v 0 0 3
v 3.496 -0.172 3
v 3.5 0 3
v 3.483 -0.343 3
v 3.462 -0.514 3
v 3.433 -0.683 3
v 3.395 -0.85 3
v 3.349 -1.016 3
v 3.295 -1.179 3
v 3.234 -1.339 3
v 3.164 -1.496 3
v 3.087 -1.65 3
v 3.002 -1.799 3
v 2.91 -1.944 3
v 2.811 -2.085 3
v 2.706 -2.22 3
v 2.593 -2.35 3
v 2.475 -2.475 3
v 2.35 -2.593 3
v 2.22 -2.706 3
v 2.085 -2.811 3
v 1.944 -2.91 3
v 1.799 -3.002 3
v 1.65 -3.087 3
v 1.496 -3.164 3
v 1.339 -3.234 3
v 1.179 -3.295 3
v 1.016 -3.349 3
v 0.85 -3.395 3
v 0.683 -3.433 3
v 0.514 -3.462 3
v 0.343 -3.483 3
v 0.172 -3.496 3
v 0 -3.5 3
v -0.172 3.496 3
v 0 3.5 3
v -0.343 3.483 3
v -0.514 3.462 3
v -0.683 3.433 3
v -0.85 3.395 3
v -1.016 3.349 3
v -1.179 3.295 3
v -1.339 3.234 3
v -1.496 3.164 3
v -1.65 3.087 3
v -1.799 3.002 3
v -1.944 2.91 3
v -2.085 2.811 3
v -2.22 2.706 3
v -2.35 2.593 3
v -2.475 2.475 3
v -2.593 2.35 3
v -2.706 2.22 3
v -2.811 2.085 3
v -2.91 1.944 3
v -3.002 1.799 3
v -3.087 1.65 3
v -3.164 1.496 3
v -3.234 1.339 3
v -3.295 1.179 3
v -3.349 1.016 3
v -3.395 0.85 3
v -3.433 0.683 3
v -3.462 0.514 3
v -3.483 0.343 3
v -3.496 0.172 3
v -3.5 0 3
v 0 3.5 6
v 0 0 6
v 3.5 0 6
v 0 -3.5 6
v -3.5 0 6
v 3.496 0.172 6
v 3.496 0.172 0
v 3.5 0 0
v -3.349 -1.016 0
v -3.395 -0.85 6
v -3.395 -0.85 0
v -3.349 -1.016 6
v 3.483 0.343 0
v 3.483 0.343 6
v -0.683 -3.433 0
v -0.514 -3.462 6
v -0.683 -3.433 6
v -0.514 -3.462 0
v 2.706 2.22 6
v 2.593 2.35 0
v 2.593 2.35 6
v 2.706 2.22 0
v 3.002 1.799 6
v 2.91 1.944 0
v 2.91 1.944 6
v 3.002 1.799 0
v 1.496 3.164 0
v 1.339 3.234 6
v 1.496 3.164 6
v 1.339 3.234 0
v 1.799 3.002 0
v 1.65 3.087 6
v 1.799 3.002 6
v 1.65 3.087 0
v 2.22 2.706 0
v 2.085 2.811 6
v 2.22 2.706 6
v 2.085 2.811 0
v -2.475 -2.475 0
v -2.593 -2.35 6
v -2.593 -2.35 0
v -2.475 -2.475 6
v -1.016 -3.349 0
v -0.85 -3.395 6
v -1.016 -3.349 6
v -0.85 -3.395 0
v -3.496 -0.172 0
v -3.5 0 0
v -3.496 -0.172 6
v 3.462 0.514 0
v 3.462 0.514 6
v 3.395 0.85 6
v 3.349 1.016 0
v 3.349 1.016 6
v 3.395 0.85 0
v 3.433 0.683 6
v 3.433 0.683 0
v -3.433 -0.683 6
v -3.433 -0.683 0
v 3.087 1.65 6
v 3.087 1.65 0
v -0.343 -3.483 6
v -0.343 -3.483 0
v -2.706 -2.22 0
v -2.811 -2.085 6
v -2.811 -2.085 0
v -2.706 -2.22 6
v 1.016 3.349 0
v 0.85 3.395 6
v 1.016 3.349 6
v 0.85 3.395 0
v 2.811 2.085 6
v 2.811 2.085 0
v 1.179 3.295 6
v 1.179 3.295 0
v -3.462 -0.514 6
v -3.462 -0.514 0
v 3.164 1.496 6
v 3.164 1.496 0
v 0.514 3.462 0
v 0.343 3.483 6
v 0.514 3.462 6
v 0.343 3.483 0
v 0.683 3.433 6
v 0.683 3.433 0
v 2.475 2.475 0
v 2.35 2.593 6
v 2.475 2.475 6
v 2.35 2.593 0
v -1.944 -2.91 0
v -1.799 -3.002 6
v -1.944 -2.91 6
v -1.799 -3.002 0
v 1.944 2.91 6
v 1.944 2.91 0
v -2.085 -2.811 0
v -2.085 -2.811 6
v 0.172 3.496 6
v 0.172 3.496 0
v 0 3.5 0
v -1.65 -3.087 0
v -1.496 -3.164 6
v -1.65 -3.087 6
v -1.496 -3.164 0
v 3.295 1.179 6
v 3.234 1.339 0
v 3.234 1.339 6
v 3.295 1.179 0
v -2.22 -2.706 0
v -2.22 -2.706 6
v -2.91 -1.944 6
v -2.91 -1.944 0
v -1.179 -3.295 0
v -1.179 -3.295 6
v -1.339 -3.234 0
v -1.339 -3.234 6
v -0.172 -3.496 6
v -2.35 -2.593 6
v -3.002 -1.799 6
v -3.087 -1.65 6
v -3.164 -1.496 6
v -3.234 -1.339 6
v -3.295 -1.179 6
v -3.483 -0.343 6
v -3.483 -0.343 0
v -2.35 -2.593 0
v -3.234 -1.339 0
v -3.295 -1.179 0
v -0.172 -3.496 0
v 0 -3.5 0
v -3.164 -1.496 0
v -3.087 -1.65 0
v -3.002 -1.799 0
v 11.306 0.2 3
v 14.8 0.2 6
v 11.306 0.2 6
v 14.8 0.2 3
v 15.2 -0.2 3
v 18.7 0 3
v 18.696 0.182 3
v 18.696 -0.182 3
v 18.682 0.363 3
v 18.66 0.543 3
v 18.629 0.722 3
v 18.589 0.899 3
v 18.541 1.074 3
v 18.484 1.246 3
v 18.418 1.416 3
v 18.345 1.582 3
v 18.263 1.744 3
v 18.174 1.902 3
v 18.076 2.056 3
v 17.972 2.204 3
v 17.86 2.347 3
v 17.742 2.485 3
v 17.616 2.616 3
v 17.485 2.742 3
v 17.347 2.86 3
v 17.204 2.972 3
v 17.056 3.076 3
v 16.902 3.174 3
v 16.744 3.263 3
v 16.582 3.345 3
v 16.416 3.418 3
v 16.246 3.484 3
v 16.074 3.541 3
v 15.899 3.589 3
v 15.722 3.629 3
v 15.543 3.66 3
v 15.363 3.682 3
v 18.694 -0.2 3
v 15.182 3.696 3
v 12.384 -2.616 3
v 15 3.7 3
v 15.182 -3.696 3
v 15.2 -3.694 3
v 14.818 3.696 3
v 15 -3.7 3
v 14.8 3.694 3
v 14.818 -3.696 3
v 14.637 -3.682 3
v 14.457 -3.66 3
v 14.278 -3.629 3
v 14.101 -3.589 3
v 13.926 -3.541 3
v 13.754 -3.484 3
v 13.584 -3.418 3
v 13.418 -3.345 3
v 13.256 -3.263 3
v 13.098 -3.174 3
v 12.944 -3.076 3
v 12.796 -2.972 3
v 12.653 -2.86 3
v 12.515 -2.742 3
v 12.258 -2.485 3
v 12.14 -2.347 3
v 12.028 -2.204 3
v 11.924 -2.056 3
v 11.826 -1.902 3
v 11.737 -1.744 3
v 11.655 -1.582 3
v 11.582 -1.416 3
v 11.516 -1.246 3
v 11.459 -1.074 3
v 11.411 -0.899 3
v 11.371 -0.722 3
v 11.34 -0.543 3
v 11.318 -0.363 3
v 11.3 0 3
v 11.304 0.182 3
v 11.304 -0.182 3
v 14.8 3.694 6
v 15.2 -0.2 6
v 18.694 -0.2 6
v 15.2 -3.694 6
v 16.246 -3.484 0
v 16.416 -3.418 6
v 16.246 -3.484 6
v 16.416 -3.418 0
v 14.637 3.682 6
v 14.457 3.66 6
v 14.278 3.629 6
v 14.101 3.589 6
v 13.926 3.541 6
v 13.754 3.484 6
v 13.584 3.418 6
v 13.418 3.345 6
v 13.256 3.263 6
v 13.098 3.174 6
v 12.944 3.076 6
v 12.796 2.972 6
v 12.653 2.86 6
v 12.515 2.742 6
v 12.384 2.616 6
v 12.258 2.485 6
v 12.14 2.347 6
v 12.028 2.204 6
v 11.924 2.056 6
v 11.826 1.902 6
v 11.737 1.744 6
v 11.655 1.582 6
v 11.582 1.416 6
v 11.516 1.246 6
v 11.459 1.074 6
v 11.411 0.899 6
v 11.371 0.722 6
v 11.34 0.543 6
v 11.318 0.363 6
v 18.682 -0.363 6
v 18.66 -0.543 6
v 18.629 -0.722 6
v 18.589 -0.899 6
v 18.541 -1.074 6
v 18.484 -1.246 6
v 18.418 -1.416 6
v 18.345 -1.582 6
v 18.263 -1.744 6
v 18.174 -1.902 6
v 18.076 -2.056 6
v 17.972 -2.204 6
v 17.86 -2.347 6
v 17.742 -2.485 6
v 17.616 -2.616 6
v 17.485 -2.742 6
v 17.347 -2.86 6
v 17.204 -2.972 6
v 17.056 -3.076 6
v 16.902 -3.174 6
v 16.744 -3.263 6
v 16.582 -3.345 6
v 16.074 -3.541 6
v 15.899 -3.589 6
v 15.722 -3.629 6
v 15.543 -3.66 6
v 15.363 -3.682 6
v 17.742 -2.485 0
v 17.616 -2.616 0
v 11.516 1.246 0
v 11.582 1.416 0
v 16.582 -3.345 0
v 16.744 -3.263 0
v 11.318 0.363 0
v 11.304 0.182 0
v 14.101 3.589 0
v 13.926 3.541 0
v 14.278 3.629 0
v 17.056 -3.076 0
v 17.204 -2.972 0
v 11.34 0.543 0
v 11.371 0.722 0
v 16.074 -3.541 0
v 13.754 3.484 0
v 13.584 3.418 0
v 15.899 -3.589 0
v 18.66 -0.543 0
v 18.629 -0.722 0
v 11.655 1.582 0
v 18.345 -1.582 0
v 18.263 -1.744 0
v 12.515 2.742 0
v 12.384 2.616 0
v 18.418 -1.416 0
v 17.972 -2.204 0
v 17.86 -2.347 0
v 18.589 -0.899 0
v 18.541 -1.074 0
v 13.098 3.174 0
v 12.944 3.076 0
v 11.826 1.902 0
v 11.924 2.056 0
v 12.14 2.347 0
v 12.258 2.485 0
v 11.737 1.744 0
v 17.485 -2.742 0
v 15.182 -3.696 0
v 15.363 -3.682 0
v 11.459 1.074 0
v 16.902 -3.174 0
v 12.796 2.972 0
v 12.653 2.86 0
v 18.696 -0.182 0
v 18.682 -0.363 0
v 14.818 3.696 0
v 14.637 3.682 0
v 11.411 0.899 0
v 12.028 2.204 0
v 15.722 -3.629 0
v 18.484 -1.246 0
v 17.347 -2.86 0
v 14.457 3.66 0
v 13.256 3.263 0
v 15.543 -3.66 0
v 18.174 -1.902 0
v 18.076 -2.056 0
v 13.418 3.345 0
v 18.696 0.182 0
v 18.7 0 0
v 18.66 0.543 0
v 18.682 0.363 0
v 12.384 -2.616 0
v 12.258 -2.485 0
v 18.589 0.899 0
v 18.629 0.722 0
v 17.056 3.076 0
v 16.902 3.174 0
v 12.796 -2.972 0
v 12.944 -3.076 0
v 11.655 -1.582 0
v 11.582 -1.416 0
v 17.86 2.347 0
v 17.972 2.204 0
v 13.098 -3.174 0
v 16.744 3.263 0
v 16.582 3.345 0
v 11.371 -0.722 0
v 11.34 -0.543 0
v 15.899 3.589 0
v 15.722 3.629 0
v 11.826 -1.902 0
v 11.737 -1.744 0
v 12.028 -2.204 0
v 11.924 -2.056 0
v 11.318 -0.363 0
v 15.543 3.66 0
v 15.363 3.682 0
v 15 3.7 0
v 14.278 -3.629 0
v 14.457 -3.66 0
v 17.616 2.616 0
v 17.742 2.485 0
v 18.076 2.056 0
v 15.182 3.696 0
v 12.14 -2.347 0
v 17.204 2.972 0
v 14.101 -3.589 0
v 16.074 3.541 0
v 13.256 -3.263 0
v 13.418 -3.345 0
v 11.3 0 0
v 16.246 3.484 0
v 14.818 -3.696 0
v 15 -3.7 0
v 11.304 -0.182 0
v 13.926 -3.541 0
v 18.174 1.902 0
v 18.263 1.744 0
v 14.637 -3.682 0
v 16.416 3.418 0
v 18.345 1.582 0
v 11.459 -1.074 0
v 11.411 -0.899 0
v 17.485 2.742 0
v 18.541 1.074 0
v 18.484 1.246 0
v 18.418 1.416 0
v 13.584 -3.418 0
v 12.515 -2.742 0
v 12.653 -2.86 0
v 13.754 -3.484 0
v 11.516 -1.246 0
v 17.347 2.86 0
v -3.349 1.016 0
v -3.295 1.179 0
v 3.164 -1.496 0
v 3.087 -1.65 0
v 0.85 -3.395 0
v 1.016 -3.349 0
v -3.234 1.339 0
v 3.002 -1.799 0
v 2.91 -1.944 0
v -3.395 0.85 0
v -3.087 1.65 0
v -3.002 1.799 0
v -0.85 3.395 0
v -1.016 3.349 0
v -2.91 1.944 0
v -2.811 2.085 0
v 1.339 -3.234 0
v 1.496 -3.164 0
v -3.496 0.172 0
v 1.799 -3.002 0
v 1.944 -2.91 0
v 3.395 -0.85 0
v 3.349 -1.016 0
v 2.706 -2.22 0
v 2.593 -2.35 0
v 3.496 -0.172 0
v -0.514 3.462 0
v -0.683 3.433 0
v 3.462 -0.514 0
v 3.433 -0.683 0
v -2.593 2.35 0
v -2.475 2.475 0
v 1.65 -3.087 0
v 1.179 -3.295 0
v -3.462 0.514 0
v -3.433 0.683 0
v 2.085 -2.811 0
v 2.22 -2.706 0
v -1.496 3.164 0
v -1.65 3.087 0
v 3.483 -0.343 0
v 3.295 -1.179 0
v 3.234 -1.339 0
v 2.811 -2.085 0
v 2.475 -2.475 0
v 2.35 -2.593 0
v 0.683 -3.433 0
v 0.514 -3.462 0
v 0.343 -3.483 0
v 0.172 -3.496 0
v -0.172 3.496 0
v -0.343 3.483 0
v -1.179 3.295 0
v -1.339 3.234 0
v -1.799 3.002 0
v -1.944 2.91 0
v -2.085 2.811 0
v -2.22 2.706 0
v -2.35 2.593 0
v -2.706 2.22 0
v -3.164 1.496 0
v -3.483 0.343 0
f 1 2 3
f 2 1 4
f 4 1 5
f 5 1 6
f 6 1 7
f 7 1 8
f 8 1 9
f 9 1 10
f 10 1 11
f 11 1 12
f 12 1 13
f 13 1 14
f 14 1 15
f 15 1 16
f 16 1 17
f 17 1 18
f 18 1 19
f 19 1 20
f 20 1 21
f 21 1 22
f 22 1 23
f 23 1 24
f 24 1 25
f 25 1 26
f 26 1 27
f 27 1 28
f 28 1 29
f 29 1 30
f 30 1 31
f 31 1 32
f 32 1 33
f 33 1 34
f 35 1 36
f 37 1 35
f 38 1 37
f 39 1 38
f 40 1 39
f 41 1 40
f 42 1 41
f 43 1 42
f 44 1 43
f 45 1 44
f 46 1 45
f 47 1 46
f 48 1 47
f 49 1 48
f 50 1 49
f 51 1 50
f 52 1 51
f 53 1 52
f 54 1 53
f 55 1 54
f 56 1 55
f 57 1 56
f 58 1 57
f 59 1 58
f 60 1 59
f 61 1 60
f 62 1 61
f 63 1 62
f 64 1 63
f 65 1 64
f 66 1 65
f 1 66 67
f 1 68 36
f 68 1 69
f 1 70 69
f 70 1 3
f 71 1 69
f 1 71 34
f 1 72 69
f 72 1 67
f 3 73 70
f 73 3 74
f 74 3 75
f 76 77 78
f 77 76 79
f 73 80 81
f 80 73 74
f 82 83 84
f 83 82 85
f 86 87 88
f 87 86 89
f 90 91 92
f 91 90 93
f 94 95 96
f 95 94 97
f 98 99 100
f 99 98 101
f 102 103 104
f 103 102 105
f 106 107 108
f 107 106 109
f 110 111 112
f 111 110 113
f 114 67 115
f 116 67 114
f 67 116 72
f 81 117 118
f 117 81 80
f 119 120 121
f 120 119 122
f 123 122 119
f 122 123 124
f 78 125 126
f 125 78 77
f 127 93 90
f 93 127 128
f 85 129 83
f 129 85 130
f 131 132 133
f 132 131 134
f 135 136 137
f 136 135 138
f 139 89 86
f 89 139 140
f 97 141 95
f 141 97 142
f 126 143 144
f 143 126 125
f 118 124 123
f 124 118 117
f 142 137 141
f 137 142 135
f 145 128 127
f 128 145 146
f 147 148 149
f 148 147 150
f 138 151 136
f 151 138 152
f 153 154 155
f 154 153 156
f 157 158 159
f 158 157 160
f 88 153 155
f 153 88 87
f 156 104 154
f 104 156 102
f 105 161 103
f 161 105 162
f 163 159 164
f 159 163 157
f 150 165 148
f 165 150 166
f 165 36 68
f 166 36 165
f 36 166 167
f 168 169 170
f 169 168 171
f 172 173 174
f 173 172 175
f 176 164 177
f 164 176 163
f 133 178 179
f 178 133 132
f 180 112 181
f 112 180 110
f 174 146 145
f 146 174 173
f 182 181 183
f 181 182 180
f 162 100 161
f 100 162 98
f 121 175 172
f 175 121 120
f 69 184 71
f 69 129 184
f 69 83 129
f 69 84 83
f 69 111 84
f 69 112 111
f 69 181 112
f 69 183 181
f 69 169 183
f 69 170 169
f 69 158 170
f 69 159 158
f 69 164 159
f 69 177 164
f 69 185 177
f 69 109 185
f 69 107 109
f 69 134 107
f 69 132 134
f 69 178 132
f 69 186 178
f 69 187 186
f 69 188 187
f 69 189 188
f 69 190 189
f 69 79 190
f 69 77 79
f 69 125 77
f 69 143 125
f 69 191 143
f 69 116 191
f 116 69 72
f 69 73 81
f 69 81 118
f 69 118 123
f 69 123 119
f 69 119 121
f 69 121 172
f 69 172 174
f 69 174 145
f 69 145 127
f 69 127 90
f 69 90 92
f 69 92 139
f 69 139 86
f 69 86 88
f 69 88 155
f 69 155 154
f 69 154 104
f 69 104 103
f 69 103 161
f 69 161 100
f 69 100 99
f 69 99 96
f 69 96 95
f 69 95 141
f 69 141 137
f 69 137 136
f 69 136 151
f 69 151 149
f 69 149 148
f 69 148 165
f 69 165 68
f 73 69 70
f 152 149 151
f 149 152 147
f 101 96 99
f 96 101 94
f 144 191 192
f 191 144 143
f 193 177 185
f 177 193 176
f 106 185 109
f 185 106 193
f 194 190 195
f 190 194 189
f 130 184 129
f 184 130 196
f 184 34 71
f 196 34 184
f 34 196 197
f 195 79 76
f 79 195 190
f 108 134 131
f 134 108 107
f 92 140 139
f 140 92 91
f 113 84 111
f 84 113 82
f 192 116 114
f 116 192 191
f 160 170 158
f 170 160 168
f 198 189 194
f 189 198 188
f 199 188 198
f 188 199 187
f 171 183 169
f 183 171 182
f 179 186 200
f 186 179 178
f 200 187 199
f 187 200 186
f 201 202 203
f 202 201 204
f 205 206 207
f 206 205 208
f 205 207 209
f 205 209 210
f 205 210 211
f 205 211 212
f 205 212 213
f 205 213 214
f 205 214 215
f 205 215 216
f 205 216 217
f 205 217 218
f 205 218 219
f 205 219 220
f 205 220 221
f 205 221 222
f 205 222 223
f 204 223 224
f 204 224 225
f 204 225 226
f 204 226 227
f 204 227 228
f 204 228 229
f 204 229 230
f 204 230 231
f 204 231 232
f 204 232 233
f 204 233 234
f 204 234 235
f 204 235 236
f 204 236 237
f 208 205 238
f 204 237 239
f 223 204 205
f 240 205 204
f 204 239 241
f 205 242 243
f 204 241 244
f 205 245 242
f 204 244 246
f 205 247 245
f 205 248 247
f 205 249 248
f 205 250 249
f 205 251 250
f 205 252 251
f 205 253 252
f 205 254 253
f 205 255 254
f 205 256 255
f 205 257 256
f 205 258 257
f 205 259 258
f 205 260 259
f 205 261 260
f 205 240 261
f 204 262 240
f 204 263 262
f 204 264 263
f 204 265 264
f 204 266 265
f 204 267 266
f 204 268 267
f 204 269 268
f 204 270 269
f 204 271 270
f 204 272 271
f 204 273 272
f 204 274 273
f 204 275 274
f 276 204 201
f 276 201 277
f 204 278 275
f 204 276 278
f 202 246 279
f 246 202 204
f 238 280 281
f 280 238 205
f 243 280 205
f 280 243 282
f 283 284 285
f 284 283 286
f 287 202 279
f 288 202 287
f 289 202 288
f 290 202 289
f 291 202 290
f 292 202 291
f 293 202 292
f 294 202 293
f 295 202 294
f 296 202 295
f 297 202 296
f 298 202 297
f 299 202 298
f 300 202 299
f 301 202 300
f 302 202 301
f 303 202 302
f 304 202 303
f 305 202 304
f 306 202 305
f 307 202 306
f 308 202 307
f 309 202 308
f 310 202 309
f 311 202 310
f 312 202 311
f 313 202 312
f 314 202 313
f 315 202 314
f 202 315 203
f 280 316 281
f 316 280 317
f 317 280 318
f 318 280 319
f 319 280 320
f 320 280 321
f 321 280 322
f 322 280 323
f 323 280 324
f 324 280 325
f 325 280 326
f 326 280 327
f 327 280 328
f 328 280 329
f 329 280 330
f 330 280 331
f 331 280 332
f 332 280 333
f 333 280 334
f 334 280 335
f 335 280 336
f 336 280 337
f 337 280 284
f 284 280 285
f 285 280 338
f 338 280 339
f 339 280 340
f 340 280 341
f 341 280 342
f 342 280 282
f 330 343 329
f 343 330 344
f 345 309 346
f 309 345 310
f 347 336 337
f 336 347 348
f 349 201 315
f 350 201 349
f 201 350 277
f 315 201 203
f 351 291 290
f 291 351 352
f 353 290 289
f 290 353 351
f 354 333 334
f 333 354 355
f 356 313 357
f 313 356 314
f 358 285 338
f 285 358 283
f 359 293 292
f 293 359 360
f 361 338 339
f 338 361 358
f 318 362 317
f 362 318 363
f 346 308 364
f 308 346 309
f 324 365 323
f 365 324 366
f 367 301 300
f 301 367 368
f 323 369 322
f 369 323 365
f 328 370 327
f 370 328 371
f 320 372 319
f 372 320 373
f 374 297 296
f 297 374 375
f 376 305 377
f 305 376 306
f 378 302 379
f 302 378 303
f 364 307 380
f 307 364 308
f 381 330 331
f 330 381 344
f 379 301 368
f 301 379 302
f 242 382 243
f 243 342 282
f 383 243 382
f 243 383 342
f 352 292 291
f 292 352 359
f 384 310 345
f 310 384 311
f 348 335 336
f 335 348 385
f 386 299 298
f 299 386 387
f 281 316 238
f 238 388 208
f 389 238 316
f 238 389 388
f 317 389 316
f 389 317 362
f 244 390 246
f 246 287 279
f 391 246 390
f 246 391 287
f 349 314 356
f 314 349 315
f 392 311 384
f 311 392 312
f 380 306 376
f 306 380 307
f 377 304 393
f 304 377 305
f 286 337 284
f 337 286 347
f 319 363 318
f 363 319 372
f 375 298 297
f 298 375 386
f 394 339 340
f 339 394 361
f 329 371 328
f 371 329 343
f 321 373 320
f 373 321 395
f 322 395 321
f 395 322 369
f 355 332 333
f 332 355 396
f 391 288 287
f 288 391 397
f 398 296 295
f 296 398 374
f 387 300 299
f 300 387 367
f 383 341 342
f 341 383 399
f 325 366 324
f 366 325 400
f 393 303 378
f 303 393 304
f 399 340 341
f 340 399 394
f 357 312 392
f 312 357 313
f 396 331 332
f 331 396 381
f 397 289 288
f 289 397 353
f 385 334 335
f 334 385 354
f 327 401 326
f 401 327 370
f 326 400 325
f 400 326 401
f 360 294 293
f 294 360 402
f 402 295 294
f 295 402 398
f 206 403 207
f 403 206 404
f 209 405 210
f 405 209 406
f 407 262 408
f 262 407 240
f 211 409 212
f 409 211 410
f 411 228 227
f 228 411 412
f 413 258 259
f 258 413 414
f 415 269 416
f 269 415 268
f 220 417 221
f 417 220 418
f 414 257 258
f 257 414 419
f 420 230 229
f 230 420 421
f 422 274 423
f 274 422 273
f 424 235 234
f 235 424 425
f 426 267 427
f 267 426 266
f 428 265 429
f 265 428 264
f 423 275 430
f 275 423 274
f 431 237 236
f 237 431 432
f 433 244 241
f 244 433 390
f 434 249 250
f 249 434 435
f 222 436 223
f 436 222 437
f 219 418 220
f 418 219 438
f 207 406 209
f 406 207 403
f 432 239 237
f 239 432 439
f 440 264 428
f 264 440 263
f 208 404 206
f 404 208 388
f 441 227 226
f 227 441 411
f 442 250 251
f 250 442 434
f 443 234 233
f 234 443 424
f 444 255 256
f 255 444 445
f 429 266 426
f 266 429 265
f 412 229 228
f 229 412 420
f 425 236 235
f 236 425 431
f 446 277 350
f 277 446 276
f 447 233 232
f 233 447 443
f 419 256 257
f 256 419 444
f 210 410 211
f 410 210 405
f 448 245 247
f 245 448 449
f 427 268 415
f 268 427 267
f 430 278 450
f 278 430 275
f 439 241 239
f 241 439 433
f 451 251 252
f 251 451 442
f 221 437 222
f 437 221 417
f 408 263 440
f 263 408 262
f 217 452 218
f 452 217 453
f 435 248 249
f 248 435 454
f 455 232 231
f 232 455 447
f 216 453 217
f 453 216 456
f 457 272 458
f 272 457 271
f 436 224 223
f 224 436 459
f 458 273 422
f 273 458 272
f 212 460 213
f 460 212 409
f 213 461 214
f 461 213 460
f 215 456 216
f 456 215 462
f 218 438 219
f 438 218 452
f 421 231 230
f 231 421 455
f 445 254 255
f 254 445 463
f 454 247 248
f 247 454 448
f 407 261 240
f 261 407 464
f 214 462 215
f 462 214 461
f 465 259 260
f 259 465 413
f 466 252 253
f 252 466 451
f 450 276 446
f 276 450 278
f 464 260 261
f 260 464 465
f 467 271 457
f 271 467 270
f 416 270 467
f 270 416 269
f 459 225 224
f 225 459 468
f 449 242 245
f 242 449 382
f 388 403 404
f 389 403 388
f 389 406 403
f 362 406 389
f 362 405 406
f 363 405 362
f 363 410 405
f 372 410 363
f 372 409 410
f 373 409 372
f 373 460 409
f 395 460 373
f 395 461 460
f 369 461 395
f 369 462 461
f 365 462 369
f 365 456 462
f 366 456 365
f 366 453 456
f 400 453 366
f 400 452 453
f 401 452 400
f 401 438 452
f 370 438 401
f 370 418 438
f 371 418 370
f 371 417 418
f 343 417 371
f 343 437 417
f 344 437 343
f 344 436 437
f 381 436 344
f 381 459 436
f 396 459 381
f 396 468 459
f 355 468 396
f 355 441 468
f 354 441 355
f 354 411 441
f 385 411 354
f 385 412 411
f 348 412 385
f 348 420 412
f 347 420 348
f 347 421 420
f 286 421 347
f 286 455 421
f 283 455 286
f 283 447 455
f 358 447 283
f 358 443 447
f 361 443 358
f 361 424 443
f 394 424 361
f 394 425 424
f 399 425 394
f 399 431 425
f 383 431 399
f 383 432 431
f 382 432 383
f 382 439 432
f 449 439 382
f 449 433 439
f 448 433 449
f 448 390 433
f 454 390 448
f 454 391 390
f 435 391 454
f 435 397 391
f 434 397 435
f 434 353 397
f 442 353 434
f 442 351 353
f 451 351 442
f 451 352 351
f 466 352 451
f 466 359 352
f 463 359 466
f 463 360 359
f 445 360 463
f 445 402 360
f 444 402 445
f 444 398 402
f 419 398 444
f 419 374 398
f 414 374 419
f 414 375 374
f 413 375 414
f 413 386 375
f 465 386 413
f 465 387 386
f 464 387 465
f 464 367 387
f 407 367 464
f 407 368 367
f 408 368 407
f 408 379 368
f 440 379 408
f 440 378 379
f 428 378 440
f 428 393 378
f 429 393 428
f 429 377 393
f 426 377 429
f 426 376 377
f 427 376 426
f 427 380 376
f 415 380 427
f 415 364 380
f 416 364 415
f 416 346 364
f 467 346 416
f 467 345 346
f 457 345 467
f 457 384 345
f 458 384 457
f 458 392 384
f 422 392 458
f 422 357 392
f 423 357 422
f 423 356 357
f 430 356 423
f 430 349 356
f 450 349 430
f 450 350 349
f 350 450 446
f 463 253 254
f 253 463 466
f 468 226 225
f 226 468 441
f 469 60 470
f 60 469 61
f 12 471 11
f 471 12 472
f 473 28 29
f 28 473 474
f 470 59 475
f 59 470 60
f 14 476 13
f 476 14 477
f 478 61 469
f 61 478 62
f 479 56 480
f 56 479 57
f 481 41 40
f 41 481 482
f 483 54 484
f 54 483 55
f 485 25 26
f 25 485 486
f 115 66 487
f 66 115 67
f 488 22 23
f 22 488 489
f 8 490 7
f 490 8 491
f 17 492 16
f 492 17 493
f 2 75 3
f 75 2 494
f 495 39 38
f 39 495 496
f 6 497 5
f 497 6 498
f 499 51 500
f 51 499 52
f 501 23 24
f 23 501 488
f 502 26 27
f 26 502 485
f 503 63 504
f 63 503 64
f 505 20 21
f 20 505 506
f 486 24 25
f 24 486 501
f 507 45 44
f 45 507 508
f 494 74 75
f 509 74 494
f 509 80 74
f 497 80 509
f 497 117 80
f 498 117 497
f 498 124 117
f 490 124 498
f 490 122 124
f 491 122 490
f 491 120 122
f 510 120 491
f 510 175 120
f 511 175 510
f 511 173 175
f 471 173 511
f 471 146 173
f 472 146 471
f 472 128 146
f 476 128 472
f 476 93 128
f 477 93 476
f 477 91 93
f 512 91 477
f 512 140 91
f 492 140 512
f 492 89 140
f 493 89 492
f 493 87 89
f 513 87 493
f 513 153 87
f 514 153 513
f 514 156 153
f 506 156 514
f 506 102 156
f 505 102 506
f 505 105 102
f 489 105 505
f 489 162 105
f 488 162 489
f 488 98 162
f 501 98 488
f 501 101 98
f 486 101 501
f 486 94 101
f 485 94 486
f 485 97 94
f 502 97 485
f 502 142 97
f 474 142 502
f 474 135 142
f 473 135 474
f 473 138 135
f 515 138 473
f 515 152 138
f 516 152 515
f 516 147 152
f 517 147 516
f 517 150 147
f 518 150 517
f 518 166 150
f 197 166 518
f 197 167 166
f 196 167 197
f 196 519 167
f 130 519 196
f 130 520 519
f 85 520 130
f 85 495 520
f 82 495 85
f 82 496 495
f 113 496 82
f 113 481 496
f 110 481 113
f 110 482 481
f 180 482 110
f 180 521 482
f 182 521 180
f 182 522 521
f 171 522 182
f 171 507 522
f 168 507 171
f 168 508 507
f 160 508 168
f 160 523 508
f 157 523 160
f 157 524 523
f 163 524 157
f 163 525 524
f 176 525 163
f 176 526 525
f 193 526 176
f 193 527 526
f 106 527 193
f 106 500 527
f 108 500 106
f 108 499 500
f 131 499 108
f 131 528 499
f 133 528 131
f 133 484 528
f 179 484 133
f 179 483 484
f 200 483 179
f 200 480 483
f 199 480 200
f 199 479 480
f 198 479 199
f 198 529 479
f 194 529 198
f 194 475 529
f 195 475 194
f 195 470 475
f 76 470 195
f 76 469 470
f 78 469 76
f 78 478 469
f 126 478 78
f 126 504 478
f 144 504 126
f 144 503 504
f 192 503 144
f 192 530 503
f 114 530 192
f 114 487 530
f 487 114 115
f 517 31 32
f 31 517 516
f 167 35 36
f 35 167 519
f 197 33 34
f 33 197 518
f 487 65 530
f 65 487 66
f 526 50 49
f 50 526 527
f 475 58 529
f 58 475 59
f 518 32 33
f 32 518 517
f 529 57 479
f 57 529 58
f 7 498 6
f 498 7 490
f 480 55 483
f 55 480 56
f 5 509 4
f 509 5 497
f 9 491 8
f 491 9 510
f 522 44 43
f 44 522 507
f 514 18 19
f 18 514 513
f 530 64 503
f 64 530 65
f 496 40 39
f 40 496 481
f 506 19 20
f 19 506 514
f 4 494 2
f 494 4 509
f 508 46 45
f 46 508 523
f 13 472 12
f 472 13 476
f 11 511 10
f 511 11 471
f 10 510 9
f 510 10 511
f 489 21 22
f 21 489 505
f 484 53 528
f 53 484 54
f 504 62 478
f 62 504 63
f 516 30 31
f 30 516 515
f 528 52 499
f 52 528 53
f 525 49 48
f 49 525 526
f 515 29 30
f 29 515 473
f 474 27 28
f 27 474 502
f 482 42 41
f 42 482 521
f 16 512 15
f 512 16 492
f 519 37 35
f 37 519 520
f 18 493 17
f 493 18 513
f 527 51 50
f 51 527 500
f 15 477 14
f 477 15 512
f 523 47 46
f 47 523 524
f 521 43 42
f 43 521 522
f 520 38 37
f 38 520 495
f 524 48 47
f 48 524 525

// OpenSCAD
$fn = $preview ? 16 : 128;

bearing_inner_diam = 7;

slot_width = 2;
slot_length = slot_width;
slot_height = 2;

shaft_inner_diam = bearing_inner_diam - 2 * slot_width;

h = 3;

tolerance = 0.4;

// Shaft

cylinder(h, d=bearing_inner_diam);

translate([0, 0, h])
intersection() {
    cylinder(h, d=bearing_inner_diam);

    union() {
        for(i=[0:1]){
        rotate([0, 0, i * 180])
        cube(bearing_inner_diam / 2);
        }
    }

}

top_diam = bearing_inner_diam + tolerance;

translate([15, 0, 0]) {
cylinder(h, d=top_diam);

translate([0, 0, h])
intersection() {
    cylinder(h, d=top_diam);

    union() {
        for(i=[0:1]){
        rotate([0, 0, 90 + i * 180])
        translate([tolerance / 2, tolerance / 2, 0])
        cube(top_diam / 2);
        }
    }
}
}
